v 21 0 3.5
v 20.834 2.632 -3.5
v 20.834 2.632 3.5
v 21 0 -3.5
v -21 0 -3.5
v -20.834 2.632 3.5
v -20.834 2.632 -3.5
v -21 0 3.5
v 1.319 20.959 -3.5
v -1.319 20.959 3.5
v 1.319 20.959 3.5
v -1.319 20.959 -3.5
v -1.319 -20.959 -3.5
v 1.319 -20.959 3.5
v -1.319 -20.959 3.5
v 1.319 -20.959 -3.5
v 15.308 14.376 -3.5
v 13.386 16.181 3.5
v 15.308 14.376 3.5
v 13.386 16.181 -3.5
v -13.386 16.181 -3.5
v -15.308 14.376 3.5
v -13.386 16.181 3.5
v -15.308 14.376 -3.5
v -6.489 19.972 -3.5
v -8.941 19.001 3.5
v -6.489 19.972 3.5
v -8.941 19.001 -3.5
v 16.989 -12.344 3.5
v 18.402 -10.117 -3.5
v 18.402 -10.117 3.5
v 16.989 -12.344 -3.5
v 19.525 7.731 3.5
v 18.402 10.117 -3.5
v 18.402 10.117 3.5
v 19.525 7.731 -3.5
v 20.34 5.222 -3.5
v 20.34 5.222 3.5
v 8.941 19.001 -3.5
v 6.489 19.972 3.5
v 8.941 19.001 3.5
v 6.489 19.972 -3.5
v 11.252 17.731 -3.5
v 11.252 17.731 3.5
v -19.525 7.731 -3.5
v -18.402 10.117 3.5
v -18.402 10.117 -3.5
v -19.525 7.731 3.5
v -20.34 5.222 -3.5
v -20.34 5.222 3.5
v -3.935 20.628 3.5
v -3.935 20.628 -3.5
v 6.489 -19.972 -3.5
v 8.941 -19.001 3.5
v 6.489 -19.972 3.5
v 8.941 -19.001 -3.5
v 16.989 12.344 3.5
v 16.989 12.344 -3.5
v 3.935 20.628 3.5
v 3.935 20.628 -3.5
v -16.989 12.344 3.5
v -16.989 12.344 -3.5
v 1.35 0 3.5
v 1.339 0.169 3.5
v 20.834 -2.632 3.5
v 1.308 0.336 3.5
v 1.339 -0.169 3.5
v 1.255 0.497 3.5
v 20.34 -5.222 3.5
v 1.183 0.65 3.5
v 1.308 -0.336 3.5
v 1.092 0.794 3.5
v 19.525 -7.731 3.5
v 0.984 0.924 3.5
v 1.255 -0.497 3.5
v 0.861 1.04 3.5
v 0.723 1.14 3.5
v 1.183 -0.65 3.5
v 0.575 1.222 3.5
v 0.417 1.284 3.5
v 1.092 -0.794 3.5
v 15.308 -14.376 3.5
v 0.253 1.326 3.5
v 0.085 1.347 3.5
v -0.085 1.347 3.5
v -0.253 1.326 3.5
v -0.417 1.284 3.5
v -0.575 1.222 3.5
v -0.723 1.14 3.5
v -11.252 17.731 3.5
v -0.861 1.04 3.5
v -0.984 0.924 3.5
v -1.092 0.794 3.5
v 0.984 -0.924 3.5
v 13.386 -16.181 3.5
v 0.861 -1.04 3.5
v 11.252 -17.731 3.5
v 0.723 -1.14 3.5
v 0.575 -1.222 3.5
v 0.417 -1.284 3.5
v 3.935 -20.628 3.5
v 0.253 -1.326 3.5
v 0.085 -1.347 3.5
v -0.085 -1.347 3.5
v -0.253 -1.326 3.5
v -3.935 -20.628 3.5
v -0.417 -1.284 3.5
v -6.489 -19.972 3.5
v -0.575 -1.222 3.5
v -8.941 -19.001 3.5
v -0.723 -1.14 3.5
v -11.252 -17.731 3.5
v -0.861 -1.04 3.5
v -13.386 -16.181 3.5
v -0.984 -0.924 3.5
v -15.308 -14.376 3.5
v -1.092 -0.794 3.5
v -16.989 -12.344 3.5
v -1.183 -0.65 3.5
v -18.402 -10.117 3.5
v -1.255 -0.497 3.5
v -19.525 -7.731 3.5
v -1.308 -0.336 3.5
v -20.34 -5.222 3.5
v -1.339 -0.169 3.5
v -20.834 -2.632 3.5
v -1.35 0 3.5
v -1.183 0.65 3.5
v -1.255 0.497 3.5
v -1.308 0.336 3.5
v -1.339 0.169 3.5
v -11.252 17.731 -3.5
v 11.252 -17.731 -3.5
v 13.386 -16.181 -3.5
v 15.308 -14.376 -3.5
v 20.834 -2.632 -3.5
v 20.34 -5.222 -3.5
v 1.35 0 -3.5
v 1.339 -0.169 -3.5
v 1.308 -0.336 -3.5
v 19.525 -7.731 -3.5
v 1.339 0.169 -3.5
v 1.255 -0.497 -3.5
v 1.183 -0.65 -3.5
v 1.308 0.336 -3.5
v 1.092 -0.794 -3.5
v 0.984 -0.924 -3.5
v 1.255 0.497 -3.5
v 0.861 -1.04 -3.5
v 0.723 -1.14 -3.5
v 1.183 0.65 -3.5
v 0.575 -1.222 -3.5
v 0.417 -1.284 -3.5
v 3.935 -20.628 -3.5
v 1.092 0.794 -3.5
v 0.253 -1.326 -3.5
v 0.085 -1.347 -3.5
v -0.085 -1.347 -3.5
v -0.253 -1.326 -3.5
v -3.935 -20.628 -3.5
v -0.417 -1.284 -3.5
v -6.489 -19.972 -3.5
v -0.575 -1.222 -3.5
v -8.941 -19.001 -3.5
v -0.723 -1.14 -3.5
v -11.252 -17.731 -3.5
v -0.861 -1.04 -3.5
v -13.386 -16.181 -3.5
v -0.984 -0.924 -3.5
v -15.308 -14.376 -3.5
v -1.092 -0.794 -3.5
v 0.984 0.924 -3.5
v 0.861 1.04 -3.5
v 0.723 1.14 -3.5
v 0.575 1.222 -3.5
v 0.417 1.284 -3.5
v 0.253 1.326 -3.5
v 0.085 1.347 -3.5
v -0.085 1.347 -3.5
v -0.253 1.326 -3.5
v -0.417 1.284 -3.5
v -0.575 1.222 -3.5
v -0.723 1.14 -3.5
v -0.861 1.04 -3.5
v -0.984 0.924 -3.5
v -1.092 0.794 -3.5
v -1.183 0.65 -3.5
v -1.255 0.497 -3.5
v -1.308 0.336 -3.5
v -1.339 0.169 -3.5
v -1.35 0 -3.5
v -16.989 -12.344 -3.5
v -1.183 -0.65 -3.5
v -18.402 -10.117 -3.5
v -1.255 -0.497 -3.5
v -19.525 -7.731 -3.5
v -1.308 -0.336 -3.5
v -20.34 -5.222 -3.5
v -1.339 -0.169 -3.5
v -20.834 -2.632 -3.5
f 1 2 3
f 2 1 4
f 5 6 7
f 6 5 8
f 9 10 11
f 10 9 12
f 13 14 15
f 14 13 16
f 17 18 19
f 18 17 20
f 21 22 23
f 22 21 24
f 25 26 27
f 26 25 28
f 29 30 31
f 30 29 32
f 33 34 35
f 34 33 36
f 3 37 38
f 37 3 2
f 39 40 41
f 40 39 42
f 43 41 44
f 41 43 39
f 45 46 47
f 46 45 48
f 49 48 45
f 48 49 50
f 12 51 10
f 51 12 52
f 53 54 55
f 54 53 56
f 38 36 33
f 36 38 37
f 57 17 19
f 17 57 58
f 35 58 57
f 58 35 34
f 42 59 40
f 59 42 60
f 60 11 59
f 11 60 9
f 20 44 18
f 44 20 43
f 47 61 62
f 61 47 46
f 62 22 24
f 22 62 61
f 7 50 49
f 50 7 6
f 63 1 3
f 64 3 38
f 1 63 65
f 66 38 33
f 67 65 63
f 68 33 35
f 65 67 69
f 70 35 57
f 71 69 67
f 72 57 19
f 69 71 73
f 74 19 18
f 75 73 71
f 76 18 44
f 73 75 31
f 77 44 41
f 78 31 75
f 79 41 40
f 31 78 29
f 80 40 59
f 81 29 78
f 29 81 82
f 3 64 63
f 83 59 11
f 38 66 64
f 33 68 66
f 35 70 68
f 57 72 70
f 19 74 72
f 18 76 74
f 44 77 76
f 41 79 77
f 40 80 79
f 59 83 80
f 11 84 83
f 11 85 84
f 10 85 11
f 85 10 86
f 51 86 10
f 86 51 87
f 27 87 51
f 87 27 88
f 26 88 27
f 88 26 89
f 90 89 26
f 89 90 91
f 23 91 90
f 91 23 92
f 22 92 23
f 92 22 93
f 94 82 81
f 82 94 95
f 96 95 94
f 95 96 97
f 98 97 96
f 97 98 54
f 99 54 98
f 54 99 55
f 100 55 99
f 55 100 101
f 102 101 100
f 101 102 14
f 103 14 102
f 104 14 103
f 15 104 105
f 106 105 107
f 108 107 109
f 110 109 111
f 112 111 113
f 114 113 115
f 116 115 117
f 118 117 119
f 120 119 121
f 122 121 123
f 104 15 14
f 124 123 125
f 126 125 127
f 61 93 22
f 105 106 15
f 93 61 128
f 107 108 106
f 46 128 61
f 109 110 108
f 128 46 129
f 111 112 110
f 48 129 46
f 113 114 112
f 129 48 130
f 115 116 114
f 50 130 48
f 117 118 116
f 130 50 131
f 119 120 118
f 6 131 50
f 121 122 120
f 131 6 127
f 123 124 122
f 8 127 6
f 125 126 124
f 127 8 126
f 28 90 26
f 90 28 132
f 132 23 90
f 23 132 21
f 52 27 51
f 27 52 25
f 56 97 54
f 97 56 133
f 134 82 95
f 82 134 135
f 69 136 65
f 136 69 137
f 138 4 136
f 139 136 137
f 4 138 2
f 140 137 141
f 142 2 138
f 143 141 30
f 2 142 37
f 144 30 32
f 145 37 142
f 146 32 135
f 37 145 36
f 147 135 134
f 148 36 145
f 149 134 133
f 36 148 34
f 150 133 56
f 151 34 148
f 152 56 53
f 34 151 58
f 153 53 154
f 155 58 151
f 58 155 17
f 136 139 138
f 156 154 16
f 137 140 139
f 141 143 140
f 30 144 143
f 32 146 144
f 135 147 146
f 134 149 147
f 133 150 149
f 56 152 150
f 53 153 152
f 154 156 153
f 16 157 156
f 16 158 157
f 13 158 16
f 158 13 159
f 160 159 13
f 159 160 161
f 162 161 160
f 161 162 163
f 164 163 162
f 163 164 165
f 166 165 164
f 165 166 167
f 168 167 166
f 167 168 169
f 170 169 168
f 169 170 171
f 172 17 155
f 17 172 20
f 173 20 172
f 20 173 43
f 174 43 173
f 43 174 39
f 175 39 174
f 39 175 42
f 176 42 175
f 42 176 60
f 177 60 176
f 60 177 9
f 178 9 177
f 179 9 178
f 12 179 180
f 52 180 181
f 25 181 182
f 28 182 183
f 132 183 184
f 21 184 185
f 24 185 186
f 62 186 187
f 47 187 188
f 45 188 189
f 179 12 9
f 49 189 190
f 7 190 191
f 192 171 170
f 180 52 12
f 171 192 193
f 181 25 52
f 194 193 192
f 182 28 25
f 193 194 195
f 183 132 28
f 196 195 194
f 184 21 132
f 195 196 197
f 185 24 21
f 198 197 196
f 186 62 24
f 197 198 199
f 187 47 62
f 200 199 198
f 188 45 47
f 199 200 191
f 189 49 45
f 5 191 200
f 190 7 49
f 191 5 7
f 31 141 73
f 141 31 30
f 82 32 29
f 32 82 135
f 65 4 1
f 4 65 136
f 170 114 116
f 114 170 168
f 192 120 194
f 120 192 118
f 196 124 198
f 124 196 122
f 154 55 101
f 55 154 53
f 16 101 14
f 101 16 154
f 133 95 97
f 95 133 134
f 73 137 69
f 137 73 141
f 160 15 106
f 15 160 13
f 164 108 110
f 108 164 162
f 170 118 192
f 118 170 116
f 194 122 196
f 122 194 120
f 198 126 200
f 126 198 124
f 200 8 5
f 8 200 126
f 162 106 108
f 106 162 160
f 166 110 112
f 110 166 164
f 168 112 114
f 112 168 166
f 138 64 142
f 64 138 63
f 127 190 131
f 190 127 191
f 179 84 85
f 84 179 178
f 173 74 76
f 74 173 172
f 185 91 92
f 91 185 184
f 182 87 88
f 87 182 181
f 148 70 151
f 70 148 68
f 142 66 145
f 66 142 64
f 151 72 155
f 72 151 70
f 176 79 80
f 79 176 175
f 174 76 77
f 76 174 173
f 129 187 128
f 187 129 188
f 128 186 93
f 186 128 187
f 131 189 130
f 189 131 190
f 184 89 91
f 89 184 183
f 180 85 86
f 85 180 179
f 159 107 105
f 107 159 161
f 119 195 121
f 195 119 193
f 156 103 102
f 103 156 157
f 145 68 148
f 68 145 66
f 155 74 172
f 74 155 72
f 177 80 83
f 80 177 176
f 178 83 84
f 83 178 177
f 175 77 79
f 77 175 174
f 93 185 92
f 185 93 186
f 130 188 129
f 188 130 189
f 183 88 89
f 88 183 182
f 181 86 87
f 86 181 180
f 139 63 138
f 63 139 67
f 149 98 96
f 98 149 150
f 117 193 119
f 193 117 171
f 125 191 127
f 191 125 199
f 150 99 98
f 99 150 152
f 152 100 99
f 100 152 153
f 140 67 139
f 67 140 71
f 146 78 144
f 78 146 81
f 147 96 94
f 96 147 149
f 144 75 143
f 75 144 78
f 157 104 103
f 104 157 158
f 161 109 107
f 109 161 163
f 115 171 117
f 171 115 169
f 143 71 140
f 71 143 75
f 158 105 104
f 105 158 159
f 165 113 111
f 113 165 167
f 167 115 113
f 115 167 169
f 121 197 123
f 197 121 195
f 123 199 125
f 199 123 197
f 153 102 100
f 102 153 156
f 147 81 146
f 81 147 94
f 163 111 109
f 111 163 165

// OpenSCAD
$fn = 50;


difference() {
	union() {
		translate(v = [0, 0, -3.5000000000]) {
			cylinder(h = 7, r = 21.0000000000);
		}
	}
	union() {
		translate(v = [0, 0, -100.0000000000]) {
			cylinder(h = 200, r = 1.3500000000);
		}
	}
}
